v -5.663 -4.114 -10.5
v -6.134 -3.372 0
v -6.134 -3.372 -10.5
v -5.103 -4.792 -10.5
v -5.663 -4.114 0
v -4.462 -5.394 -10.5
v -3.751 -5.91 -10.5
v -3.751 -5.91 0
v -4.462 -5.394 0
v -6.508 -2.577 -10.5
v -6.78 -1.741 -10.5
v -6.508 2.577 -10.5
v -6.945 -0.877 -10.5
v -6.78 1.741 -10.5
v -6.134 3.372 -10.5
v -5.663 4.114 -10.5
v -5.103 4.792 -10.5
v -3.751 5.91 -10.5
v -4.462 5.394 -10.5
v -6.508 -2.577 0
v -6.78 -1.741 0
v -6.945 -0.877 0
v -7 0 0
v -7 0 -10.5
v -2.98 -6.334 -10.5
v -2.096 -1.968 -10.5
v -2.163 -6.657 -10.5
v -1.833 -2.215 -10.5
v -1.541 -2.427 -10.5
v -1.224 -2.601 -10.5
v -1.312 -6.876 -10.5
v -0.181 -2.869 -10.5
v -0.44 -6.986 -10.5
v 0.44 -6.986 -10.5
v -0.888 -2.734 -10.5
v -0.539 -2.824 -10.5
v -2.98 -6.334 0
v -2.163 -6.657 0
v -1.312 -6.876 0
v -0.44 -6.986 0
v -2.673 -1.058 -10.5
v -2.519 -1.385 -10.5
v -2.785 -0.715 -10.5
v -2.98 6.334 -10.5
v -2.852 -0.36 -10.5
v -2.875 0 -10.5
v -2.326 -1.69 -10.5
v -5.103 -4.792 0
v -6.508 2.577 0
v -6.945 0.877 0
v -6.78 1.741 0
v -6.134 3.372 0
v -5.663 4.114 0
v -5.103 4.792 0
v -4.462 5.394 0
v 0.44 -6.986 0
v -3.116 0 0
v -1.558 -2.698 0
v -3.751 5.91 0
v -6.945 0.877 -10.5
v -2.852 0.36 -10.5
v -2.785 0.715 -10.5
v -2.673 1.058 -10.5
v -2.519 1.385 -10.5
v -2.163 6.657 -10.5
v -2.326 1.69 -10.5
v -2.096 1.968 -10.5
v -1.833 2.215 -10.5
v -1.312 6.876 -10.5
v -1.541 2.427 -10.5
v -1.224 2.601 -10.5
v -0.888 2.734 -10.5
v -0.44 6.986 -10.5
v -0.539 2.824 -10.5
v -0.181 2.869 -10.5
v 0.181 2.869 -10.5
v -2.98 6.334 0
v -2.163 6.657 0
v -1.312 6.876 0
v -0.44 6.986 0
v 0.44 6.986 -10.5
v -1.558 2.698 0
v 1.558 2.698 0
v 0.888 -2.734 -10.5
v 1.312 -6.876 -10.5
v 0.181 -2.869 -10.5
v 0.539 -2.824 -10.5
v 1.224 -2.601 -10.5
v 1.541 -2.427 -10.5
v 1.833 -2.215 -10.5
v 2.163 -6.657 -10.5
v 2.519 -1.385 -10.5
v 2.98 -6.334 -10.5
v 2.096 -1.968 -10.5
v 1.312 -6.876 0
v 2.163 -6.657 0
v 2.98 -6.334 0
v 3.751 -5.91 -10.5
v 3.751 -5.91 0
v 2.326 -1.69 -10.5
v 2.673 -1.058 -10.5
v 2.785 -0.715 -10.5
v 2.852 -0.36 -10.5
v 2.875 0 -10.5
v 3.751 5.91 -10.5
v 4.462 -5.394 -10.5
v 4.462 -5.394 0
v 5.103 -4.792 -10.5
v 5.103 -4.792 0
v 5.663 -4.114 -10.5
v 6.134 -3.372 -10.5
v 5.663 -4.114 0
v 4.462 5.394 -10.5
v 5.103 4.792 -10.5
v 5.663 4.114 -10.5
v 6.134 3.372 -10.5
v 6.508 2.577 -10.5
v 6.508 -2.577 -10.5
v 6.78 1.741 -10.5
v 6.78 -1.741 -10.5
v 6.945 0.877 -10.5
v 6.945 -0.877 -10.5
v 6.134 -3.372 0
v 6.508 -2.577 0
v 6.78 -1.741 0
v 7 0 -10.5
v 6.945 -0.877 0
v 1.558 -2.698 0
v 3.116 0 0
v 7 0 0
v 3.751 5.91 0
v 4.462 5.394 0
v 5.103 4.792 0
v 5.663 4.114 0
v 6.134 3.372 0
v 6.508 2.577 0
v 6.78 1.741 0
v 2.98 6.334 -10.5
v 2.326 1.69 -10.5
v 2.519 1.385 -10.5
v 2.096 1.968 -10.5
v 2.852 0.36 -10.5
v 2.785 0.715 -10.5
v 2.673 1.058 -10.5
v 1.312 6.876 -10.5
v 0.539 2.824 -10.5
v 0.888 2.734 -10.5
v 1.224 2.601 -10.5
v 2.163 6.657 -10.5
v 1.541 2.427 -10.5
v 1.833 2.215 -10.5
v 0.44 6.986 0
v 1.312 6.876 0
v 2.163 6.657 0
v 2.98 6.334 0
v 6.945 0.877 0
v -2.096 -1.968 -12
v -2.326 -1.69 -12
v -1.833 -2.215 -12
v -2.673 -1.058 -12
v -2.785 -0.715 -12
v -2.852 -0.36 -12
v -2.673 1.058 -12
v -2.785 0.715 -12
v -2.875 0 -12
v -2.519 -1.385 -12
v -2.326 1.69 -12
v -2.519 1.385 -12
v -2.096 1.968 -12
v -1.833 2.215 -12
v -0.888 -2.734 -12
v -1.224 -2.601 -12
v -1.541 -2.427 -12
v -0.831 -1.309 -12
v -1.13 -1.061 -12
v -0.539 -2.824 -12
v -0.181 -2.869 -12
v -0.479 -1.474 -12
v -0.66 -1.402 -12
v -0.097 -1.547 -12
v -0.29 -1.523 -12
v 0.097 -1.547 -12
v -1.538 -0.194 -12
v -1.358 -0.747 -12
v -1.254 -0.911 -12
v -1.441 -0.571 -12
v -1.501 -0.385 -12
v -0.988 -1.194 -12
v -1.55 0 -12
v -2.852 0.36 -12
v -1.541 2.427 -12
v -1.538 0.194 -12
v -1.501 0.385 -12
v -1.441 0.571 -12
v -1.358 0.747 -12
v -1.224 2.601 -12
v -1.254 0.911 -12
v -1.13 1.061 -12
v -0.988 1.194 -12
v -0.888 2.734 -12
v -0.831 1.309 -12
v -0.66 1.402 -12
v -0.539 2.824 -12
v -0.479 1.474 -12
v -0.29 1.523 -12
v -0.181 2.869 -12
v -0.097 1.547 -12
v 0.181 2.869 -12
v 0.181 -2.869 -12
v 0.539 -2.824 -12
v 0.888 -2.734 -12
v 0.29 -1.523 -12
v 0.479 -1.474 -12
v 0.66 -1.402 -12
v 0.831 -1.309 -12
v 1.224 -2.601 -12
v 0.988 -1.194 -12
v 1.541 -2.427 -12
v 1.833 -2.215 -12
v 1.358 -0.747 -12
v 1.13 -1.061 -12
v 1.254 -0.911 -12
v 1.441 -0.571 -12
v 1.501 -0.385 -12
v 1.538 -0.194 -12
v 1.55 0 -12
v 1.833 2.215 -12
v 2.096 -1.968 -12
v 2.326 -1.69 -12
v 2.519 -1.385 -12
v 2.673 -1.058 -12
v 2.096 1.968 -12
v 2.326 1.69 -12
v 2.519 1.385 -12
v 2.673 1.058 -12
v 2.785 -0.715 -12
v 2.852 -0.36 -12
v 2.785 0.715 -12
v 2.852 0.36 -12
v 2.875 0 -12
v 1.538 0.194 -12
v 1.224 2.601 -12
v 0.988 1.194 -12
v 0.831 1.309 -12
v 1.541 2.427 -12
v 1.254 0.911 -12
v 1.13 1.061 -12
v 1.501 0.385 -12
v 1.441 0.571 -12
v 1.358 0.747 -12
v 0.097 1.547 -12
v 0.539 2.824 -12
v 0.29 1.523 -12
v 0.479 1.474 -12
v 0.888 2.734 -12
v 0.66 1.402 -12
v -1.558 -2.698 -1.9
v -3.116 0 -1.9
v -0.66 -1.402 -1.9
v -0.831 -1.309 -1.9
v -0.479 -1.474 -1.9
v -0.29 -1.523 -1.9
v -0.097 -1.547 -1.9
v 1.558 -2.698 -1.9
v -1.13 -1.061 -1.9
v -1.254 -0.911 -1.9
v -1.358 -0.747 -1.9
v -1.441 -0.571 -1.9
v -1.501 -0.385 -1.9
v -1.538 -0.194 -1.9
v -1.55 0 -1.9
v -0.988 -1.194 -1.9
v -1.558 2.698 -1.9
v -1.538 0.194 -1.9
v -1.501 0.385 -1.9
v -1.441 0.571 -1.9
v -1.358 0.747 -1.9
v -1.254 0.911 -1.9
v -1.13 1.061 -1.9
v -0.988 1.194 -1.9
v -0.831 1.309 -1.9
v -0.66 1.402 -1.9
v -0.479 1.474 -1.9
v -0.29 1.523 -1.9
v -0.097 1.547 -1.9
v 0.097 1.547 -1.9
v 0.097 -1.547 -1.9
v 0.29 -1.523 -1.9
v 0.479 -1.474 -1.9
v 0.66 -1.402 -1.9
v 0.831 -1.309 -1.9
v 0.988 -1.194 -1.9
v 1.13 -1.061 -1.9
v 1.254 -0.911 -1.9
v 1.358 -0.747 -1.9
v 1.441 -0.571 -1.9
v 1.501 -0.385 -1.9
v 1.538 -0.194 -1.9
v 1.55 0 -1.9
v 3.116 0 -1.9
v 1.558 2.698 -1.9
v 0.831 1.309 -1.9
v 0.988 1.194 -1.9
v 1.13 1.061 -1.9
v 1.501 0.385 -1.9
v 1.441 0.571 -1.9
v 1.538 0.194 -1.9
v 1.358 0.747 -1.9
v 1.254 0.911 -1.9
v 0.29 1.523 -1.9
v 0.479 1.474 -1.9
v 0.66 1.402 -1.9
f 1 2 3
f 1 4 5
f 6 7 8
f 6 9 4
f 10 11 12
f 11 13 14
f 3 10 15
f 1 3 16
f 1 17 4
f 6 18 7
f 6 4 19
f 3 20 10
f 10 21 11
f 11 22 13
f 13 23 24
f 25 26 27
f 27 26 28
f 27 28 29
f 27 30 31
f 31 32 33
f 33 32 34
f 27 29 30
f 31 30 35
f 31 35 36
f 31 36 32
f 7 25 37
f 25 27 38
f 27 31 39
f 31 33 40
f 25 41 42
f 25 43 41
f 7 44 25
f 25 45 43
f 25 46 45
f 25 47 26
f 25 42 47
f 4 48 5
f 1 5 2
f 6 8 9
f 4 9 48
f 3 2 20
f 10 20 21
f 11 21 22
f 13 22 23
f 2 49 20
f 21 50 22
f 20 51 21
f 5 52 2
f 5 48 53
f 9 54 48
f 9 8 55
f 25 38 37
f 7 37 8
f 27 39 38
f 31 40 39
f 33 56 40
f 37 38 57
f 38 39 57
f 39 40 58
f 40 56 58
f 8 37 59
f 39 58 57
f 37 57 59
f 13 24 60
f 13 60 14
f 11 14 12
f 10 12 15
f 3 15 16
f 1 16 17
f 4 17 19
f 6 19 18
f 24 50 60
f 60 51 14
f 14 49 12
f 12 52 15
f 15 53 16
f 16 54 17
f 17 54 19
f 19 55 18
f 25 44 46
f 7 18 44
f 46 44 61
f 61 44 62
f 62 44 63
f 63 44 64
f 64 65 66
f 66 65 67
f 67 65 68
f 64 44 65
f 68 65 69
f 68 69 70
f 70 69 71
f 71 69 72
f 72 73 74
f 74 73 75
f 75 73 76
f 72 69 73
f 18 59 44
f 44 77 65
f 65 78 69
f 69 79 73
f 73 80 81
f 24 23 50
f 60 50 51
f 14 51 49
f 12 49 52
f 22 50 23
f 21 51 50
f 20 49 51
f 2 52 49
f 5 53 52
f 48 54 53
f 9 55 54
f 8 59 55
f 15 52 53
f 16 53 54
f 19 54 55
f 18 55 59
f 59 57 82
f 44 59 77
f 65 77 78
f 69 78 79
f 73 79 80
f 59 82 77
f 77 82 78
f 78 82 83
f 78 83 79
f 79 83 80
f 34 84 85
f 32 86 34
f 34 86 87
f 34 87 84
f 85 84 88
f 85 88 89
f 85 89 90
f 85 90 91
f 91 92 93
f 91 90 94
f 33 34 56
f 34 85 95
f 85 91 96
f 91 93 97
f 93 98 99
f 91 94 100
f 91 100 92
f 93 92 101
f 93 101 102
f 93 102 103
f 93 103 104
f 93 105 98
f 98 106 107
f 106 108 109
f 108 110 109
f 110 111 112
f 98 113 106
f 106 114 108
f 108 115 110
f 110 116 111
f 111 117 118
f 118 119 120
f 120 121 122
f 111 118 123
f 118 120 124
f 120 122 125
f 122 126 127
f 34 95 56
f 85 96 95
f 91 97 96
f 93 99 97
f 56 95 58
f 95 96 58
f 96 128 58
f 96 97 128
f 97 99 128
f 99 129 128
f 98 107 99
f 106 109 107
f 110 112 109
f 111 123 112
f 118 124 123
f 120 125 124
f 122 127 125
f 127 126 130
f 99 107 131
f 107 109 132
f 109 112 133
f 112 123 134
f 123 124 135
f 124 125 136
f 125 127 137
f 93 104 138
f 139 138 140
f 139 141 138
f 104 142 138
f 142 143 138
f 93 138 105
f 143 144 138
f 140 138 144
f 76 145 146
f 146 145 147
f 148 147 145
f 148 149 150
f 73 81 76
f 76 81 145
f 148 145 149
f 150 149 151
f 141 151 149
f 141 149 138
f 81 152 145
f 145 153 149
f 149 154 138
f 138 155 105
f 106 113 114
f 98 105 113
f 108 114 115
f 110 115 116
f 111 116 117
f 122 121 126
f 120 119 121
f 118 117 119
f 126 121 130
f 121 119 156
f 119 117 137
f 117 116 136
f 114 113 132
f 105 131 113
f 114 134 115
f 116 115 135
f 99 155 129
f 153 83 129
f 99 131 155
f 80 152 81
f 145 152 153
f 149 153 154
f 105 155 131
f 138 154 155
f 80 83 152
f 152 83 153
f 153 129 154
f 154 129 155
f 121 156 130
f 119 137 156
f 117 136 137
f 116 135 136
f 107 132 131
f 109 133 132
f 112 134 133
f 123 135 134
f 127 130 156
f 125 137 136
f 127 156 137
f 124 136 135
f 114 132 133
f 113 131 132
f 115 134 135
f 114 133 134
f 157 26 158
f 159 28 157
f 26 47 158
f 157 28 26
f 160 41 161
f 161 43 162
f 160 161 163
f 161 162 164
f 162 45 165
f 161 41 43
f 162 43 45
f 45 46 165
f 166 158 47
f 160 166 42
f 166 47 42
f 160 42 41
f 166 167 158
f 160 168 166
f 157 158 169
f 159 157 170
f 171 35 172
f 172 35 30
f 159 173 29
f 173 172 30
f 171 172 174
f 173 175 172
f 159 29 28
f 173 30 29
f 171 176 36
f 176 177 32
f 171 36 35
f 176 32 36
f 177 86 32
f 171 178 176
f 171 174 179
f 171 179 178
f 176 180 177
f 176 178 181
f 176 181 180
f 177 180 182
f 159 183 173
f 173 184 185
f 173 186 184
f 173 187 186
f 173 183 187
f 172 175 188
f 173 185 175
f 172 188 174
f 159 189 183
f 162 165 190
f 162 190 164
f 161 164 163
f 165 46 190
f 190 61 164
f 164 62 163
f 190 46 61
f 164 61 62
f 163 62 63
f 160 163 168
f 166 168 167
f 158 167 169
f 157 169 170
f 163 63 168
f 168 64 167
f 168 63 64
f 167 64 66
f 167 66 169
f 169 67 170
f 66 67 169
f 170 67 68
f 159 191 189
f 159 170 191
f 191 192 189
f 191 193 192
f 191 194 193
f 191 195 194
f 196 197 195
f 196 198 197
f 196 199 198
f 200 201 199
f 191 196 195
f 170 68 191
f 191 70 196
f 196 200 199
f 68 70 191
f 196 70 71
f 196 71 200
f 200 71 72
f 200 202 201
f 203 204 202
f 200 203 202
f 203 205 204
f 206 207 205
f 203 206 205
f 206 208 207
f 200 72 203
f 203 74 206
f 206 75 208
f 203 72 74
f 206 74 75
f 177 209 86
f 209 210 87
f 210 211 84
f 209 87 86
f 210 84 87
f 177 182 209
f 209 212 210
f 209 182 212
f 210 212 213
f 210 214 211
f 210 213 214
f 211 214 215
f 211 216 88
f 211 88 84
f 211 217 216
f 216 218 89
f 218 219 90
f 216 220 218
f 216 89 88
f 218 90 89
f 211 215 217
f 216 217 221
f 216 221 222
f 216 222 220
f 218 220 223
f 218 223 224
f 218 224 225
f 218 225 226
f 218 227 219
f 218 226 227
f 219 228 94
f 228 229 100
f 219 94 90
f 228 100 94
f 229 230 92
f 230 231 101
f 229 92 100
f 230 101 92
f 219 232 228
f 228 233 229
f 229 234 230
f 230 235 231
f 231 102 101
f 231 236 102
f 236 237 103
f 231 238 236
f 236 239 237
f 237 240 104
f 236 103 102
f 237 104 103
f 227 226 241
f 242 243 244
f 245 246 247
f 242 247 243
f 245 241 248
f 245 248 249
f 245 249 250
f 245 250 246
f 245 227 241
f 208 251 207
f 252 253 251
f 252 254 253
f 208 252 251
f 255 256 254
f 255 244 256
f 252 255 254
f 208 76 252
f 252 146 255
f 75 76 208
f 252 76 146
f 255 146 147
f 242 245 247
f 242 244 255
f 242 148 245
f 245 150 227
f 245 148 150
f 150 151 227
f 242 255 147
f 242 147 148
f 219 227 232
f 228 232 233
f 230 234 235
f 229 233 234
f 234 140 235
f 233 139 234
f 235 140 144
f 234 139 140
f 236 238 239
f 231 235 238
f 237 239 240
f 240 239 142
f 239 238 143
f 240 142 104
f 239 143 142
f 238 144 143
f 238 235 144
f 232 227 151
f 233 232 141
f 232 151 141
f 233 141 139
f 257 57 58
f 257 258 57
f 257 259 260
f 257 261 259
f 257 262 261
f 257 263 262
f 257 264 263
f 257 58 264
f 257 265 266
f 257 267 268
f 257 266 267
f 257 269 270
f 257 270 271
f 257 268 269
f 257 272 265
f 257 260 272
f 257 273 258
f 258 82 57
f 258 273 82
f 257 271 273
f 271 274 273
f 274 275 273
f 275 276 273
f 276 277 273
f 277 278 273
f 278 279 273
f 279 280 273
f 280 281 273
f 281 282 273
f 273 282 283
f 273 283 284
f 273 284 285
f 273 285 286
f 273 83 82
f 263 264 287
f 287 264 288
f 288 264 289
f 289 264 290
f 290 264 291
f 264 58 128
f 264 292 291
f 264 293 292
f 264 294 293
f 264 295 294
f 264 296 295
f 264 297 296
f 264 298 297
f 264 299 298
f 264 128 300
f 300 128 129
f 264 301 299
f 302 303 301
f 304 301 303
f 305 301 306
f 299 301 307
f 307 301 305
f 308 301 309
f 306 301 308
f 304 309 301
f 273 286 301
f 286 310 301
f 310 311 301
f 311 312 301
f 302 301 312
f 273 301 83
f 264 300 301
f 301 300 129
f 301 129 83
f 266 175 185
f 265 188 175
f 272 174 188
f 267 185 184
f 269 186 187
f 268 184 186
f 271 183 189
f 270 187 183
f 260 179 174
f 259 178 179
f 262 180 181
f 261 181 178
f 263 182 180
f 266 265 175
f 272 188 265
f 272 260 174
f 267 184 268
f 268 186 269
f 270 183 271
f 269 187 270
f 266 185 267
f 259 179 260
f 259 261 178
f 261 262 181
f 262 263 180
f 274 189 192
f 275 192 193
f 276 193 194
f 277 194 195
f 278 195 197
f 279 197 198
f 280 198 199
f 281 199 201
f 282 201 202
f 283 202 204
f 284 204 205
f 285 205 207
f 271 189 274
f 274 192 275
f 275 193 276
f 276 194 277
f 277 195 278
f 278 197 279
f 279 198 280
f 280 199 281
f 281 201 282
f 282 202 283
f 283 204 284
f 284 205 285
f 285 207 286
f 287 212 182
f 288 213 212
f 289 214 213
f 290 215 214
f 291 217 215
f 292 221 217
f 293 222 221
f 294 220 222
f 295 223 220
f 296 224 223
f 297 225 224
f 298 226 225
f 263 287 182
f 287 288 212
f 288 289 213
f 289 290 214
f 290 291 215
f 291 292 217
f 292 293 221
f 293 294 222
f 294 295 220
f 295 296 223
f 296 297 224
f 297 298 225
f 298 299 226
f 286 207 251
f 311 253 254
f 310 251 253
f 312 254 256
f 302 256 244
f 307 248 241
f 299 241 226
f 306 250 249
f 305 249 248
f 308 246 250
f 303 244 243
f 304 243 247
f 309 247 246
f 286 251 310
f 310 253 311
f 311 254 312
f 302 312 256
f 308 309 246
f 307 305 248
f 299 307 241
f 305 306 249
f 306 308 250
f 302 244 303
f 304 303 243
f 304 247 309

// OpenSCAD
$fn = 50;

difference() {
	union() {
		translate(v = [0, 0, -10.5]) {
			cylinder(h = 10.5, r = 7.0);
		}
		#translate(v = [0, 0, -12.0]) {
			cylinder(h = 12, r = 2.875);
		}
	}
	union() {
		translate(v = [0, 0, 0]) {
			rotate(a = [0, 0, 0]) {
				difference() {
					union() {
						translate(v = [0, 0, -1.9]) {
							linear_extrude(height = 1.9) {
								polygon(points = [[3.1158, 0.0], [1.5579000000000005, 2.698361953111554], [-1.5578999999999994, 2.6983619531115544], [-3.1158, 3.815754496783323e-16], [-1.5579000000000014, -2.6983619531115535], [1.557899999999998, -2.6983619531115552]]);
							}
						}
					}
					union();
				}
			}
		}
		#translate(v = [0, 0, -100.0]) {
			cylinder(h = 200, r = 1.55);
		}
	}
}
